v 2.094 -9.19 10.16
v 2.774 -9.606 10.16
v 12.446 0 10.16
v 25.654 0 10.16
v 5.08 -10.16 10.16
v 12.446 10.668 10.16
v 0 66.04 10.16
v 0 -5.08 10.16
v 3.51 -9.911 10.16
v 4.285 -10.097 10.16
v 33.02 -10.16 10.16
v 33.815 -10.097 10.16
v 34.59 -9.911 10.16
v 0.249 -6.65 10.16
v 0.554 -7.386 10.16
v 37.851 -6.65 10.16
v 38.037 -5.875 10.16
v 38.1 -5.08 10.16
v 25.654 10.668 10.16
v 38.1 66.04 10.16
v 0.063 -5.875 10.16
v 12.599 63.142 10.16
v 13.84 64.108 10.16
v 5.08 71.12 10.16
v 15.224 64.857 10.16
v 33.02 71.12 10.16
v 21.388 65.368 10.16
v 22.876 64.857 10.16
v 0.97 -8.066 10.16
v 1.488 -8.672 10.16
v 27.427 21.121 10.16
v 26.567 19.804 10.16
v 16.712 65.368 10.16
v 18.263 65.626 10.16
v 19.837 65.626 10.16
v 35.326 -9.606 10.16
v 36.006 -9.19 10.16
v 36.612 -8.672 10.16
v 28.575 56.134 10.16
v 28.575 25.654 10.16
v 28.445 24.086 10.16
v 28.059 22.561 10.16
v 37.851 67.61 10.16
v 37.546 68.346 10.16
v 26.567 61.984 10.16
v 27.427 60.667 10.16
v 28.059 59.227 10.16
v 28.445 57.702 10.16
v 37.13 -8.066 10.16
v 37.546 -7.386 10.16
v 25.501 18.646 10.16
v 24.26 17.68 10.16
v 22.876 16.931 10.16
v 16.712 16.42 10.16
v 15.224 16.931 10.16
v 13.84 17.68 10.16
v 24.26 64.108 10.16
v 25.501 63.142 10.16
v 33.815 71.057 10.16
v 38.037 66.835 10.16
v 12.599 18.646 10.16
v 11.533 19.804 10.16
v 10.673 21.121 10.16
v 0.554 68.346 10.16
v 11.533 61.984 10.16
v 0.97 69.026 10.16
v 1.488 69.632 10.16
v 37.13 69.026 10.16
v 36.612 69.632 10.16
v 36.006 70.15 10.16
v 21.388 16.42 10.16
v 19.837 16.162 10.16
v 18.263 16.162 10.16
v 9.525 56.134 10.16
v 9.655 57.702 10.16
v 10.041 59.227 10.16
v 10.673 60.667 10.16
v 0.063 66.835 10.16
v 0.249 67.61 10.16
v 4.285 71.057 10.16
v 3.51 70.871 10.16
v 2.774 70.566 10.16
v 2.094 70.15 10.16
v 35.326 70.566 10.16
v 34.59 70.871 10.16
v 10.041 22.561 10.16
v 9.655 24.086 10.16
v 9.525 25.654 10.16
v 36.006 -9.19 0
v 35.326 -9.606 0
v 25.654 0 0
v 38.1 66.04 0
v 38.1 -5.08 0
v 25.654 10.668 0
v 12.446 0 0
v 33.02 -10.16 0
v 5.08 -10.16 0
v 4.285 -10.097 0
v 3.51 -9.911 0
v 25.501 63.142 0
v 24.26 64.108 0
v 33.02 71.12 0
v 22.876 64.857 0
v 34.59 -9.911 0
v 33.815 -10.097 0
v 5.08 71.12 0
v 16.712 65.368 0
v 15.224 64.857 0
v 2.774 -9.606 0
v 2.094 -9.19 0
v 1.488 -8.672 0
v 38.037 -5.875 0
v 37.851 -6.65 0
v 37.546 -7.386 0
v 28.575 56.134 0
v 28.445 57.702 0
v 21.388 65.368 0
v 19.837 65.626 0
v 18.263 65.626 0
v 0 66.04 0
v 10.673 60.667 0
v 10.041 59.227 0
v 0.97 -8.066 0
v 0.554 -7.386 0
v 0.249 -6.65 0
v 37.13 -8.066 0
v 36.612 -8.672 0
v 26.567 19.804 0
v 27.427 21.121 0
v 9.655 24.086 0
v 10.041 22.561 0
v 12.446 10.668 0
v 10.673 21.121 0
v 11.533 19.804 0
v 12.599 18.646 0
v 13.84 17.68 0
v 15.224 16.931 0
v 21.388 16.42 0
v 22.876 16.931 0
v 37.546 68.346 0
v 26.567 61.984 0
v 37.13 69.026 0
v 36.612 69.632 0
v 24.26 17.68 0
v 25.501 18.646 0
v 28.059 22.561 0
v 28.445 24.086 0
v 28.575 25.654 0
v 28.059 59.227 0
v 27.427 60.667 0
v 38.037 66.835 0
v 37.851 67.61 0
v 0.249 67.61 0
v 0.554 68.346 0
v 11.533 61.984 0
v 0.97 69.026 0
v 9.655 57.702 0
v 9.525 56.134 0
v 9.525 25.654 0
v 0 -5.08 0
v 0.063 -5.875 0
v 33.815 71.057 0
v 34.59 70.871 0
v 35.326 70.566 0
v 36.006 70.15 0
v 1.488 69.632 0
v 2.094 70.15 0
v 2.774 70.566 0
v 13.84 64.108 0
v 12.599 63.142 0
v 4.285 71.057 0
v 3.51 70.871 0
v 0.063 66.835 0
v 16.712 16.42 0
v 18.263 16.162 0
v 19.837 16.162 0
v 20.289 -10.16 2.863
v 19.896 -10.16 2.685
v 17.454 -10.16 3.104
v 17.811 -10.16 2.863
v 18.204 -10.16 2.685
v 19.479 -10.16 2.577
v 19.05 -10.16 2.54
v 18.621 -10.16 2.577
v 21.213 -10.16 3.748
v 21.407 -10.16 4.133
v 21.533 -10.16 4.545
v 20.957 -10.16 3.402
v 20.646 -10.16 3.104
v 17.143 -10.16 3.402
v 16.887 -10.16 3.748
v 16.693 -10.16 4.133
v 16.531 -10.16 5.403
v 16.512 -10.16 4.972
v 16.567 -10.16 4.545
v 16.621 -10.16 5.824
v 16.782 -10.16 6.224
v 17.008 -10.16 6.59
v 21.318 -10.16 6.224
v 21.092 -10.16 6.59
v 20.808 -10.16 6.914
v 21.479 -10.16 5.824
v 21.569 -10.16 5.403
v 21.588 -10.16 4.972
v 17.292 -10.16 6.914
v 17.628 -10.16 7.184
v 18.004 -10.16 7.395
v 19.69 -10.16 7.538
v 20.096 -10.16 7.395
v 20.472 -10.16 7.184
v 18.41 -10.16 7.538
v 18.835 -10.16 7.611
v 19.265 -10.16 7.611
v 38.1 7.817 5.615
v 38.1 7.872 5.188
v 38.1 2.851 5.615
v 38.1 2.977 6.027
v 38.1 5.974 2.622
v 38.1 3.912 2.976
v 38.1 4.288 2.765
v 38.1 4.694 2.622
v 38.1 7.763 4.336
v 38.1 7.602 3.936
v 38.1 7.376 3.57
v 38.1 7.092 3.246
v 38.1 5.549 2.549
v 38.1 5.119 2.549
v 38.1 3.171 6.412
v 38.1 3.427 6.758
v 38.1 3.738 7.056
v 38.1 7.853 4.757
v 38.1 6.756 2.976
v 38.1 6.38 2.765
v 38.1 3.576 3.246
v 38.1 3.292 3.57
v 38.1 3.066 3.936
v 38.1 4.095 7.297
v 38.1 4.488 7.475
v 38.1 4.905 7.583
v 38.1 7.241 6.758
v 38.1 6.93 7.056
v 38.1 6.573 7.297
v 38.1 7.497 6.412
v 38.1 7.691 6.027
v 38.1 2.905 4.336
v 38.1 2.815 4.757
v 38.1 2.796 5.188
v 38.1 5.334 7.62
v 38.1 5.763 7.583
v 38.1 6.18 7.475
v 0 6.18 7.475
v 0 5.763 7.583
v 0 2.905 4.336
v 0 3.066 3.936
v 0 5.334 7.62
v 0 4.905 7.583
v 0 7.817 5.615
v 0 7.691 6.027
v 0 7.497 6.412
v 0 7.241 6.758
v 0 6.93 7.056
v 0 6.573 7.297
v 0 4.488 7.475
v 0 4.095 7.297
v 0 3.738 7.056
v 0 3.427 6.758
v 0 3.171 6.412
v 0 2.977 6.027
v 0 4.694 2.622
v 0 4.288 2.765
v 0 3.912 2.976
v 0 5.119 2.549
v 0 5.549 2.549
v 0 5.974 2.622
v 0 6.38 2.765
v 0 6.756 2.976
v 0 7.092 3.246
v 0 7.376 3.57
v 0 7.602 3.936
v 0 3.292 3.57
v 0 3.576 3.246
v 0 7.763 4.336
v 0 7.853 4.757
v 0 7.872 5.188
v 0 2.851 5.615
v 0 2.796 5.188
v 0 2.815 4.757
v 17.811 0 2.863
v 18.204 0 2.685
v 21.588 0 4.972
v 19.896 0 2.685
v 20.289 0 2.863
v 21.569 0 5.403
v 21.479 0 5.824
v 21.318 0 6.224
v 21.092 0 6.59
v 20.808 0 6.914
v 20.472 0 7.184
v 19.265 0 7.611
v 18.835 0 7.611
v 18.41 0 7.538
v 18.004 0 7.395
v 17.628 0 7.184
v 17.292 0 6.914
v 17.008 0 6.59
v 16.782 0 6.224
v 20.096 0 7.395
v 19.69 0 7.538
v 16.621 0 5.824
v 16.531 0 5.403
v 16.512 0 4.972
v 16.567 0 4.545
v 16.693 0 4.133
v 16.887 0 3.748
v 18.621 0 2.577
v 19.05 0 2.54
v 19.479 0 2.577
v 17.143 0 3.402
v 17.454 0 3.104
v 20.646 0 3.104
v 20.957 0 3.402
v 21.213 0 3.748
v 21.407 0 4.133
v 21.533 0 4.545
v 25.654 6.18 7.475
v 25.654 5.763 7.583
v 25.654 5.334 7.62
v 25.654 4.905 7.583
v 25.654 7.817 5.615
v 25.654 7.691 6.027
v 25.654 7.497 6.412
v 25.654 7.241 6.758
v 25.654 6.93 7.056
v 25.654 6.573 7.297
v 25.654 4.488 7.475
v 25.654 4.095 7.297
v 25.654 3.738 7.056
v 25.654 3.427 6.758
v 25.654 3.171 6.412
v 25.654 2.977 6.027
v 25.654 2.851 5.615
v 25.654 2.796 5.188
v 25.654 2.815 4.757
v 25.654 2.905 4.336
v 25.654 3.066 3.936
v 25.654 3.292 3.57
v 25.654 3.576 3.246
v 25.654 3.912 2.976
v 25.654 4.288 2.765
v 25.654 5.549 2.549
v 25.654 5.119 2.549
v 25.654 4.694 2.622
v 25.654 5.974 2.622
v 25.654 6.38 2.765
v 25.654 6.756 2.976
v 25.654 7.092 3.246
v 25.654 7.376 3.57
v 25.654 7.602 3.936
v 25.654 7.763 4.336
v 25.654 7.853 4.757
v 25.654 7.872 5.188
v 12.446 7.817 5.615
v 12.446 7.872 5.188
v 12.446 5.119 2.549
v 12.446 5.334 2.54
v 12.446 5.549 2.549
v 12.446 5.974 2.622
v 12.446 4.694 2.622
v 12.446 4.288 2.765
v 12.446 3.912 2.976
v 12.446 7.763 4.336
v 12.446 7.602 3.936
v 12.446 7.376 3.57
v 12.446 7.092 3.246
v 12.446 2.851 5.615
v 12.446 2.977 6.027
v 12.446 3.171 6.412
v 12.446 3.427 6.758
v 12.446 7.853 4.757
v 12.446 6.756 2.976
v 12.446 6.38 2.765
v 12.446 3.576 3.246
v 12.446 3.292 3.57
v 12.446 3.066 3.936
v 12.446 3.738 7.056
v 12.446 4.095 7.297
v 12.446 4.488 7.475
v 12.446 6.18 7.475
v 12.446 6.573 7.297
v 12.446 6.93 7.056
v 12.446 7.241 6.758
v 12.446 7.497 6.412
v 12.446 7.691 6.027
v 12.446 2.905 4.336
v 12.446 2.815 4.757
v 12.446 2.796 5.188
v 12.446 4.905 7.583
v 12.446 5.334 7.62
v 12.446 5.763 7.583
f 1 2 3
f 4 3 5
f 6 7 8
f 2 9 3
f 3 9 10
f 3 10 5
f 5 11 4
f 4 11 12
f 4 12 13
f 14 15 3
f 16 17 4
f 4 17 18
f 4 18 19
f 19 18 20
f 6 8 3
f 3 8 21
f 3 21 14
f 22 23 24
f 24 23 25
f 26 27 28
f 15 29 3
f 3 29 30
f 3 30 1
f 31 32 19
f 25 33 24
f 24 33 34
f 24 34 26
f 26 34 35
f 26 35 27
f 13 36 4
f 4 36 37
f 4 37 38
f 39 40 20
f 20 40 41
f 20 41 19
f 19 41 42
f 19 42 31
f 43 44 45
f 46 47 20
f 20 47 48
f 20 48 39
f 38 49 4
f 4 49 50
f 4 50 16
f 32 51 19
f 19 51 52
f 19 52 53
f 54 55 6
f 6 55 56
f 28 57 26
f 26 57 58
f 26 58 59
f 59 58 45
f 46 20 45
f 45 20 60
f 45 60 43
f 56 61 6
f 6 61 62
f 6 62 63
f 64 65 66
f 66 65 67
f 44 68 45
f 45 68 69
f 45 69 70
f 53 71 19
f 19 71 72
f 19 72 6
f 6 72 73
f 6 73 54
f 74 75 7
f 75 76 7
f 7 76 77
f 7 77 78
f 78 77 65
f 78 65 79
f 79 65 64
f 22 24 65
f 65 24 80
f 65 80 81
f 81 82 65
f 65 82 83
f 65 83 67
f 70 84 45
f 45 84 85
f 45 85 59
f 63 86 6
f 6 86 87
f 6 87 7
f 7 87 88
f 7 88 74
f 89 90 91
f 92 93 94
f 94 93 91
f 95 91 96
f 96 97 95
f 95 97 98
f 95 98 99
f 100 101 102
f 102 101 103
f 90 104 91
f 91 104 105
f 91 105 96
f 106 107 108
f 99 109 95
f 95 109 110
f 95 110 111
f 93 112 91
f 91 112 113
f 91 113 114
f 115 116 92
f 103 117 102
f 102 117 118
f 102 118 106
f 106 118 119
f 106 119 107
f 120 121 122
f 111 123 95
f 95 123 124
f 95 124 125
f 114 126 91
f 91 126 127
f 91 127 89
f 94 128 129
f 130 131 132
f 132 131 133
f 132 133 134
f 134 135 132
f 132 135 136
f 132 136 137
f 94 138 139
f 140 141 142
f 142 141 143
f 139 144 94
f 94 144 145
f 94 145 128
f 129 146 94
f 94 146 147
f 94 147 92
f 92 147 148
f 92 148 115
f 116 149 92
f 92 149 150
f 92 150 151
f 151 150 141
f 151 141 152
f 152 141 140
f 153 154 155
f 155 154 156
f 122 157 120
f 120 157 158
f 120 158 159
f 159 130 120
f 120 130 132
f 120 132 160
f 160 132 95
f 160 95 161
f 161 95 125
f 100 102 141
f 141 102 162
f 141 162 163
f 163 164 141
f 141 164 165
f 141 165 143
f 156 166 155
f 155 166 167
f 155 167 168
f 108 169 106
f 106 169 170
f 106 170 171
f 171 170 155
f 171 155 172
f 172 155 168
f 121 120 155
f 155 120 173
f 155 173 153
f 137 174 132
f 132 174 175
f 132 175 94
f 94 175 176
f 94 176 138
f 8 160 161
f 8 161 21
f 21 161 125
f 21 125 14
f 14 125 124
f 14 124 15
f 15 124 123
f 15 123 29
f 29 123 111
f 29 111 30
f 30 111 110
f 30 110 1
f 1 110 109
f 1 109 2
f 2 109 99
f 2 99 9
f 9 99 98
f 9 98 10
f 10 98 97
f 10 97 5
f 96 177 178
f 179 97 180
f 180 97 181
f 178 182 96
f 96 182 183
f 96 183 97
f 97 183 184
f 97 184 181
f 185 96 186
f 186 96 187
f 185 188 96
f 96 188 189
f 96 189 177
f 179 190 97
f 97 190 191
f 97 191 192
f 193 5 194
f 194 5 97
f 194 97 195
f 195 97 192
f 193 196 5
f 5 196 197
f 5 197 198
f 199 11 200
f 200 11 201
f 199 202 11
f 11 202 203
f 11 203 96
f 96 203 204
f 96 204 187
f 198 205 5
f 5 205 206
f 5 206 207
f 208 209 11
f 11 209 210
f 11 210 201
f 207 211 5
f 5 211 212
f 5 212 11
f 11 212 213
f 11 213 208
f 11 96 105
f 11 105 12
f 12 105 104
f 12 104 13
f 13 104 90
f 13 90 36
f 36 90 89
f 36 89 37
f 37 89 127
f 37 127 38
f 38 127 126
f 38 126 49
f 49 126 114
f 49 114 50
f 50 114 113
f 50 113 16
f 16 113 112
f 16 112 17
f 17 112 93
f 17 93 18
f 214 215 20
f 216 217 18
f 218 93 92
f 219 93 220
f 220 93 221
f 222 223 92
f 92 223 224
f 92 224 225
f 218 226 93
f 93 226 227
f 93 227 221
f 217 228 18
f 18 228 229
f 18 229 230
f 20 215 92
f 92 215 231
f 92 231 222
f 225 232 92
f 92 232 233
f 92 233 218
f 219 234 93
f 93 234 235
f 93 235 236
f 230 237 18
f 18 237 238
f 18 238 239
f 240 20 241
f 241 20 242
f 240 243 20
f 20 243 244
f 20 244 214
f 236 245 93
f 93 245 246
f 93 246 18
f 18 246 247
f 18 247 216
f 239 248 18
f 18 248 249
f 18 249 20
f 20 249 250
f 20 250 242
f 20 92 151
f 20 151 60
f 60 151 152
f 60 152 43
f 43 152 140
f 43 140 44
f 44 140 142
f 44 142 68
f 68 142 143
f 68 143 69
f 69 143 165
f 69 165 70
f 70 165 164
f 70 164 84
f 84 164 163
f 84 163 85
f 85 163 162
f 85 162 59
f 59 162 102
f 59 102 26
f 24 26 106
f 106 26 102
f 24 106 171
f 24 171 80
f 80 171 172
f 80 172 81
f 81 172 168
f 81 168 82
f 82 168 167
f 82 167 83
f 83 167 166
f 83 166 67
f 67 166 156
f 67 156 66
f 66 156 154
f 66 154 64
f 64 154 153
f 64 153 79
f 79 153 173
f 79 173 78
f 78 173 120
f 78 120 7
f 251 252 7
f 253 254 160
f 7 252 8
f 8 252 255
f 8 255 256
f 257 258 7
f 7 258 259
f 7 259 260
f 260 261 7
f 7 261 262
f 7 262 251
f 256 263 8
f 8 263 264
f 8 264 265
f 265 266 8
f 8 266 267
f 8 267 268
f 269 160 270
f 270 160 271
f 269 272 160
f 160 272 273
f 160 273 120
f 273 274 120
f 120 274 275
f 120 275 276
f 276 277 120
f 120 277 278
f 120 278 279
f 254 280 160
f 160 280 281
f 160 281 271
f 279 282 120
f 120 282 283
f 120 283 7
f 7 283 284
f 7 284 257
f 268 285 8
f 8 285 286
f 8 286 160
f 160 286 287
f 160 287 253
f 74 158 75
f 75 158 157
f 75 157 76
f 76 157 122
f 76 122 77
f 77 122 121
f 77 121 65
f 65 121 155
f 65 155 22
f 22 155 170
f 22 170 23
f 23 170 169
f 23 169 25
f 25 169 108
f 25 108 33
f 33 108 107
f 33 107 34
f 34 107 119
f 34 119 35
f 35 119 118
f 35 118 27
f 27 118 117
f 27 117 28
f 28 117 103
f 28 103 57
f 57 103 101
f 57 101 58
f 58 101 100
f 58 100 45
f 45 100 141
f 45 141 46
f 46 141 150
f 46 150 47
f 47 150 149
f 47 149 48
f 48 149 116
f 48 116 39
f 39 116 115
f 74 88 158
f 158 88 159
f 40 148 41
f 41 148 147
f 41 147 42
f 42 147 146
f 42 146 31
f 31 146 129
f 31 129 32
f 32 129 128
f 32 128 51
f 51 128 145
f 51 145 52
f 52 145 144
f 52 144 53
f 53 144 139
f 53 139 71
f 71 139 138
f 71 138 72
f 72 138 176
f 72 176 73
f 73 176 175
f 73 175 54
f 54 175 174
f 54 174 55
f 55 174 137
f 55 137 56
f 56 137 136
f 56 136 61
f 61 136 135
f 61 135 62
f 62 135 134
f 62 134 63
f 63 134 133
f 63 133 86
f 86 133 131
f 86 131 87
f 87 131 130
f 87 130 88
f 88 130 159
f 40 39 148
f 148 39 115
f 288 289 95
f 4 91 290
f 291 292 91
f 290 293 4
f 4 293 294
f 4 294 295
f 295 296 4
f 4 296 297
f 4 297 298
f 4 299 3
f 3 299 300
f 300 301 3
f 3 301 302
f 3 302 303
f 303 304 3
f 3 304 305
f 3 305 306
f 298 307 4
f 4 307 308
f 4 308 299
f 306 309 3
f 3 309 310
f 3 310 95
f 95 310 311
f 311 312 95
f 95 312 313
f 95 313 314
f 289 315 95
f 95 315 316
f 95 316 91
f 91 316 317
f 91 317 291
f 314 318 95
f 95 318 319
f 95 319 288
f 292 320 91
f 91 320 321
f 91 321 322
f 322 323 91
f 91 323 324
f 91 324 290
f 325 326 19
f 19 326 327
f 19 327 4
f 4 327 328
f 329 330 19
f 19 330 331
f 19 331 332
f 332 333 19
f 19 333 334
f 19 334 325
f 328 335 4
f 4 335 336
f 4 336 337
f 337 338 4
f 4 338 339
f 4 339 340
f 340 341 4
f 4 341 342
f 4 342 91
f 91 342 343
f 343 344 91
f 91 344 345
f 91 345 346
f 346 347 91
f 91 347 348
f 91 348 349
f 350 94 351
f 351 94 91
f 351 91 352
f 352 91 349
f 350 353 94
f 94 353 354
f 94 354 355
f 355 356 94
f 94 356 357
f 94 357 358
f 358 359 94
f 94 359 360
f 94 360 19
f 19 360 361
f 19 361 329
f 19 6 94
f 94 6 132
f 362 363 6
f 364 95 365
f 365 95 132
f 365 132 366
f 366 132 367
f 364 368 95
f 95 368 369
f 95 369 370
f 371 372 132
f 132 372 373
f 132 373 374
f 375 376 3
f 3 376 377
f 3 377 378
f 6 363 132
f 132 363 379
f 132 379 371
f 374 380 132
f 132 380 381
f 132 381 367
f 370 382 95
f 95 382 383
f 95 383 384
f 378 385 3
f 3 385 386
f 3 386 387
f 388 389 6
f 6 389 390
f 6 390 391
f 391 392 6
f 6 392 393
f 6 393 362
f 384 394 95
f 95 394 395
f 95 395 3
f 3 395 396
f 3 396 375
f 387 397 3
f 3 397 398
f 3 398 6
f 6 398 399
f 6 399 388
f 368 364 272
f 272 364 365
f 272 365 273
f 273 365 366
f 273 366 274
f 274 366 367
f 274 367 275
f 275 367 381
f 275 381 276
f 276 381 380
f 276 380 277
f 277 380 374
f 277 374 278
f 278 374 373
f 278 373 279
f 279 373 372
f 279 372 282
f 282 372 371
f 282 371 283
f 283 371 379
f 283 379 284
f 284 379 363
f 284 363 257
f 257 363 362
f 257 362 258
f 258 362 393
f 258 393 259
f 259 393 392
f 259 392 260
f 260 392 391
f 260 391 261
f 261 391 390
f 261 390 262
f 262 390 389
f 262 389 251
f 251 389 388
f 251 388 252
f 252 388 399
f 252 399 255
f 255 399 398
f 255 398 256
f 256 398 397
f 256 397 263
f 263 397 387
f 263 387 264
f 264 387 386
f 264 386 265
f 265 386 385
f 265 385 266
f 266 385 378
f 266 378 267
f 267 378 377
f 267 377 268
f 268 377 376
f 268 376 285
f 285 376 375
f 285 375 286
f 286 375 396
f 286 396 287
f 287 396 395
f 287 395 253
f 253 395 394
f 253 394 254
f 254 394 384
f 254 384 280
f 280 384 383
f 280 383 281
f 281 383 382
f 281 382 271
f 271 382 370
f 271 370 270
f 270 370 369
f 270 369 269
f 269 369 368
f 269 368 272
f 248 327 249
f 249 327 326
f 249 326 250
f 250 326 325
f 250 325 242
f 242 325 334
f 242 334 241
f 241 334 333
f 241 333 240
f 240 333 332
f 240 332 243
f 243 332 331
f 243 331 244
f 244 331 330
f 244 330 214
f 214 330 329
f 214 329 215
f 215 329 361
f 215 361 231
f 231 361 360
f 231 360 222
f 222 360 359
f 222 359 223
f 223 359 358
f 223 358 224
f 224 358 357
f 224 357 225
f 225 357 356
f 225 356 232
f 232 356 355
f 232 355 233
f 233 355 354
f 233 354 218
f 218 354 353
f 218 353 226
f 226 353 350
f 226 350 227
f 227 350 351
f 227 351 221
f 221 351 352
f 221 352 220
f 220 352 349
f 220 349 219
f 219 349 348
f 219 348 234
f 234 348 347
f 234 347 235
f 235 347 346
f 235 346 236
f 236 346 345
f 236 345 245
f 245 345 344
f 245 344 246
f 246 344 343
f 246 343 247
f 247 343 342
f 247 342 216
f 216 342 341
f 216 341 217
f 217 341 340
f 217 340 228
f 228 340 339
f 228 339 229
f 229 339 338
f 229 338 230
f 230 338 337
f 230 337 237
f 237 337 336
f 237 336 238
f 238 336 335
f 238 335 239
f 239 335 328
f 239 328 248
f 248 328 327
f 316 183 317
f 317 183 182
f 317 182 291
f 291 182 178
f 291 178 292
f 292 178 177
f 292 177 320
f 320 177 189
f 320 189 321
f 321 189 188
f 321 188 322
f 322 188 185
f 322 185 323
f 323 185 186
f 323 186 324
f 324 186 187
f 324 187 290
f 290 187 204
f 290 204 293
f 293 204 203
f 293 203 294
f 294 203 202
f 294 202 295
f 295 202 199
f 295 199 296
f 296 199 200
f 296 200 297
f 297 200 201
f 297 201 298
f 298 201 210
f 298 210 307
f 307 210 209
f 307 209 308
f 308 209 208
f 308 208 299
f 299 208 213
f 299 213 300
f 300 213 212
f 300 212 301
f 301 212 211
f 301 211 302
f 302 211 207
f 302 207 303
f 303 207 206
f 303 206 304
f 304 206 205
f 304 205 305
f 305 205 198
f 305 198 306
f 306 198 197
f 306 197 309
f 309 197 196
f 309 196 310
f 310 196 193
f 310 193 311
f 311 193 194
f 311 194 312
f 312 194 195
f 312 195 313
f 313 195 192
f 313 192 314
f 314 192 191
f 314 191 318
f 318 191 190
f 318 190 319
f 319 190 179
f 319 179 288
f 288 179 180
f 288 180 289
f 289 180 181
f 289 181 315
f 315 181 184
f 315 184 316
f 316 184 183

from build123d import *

# Parameters (mm, degrees)
SKETCH1_W           = 13.208
SKETCH1_H           = 10.668
BOSS_EXTRUDE2_DEPTH = 10.16
SKETCH4_R           = 2.54
CUT_EXTRUDE1_DEPTH  = 38.1
SKETCH6_R           = 2.54
CUT_EXTRUDE2_DEPTH  = 10.16


with BuildPart() as part:
    # Sketch1 → Boss-Extrude2 (new body)
    with BuildSketch(Plane.XY):
        with BuildLine():
            Line((0, 0), (0, 66.04))
            ThreePointArc((0, 66.04), (1.487897552, 69.632102448), (5.08, 71.12))
            Line((5.08, 71.12), (33.02, 71.12))
            ThreePointArc((33.02, 71.12), (36.612102448, 69.632102448), (38.1, 66.04))
            Line((38.1, 66.04), (38.1, 0))
            Line((38.1, 0), (38.1, -5.08))
            ThreePointArc((38.1, -5.08), (36.612102448, -8.672102448), (33.02, -10.16))
            Line((33.02, -10.16), (5.08, -10.16))
            ThreePointArc((5.08, -10.16), (1.487897552, -8.672102448), (0, -5.08))
            Line((0, -5.08), (0, 0))
        make_face()
        with Locations((19.05, 5.334)):
            Rectangle(SKETCH1_W, SKETCH1_H, mode=Mode.SUBTRACT)
        with BuildLine():
            Line((9.525, 56.134), (9.525, 25.654))
            ThreePointArc((9.525, 25.654), (19.05, 16.129), (28.575, 25.654))
            Line((28.575, 25.654), (28.575, 56.134))
            ThreePointArc((28.575, 56.134), (19.05, 65.659), (9.525, 56.134))
        make_face(mode=Mode.SUBTRACT)
    extrude(amount=BOSS_EXTRUDE2_DEPTH)

    # Sketch4 → Cut-Extrude1 (cut)
    with BuildSketch(Plane.ZY):
        with Locations((5.08, 5.334)):
            Circle(SKETCH4_R)
    extrude(amount=-CUT_EXTRUDE1_DEPTH, mode=Mode.SUBTRACT)

    # Sketch6 → Cut-Extrude2 (cut)
    with BuildSketch(Plane.XZ.offset(10.16)):
        with Locations(Location((19.05, 5.08, 0), (0, 0, 270))):
            Circle(SKETCH6_R)
    extrude(amount=-CUT_EXTRUDE2_DEPTH, mode=Mode.SUBTRACT)


solid = part.part
